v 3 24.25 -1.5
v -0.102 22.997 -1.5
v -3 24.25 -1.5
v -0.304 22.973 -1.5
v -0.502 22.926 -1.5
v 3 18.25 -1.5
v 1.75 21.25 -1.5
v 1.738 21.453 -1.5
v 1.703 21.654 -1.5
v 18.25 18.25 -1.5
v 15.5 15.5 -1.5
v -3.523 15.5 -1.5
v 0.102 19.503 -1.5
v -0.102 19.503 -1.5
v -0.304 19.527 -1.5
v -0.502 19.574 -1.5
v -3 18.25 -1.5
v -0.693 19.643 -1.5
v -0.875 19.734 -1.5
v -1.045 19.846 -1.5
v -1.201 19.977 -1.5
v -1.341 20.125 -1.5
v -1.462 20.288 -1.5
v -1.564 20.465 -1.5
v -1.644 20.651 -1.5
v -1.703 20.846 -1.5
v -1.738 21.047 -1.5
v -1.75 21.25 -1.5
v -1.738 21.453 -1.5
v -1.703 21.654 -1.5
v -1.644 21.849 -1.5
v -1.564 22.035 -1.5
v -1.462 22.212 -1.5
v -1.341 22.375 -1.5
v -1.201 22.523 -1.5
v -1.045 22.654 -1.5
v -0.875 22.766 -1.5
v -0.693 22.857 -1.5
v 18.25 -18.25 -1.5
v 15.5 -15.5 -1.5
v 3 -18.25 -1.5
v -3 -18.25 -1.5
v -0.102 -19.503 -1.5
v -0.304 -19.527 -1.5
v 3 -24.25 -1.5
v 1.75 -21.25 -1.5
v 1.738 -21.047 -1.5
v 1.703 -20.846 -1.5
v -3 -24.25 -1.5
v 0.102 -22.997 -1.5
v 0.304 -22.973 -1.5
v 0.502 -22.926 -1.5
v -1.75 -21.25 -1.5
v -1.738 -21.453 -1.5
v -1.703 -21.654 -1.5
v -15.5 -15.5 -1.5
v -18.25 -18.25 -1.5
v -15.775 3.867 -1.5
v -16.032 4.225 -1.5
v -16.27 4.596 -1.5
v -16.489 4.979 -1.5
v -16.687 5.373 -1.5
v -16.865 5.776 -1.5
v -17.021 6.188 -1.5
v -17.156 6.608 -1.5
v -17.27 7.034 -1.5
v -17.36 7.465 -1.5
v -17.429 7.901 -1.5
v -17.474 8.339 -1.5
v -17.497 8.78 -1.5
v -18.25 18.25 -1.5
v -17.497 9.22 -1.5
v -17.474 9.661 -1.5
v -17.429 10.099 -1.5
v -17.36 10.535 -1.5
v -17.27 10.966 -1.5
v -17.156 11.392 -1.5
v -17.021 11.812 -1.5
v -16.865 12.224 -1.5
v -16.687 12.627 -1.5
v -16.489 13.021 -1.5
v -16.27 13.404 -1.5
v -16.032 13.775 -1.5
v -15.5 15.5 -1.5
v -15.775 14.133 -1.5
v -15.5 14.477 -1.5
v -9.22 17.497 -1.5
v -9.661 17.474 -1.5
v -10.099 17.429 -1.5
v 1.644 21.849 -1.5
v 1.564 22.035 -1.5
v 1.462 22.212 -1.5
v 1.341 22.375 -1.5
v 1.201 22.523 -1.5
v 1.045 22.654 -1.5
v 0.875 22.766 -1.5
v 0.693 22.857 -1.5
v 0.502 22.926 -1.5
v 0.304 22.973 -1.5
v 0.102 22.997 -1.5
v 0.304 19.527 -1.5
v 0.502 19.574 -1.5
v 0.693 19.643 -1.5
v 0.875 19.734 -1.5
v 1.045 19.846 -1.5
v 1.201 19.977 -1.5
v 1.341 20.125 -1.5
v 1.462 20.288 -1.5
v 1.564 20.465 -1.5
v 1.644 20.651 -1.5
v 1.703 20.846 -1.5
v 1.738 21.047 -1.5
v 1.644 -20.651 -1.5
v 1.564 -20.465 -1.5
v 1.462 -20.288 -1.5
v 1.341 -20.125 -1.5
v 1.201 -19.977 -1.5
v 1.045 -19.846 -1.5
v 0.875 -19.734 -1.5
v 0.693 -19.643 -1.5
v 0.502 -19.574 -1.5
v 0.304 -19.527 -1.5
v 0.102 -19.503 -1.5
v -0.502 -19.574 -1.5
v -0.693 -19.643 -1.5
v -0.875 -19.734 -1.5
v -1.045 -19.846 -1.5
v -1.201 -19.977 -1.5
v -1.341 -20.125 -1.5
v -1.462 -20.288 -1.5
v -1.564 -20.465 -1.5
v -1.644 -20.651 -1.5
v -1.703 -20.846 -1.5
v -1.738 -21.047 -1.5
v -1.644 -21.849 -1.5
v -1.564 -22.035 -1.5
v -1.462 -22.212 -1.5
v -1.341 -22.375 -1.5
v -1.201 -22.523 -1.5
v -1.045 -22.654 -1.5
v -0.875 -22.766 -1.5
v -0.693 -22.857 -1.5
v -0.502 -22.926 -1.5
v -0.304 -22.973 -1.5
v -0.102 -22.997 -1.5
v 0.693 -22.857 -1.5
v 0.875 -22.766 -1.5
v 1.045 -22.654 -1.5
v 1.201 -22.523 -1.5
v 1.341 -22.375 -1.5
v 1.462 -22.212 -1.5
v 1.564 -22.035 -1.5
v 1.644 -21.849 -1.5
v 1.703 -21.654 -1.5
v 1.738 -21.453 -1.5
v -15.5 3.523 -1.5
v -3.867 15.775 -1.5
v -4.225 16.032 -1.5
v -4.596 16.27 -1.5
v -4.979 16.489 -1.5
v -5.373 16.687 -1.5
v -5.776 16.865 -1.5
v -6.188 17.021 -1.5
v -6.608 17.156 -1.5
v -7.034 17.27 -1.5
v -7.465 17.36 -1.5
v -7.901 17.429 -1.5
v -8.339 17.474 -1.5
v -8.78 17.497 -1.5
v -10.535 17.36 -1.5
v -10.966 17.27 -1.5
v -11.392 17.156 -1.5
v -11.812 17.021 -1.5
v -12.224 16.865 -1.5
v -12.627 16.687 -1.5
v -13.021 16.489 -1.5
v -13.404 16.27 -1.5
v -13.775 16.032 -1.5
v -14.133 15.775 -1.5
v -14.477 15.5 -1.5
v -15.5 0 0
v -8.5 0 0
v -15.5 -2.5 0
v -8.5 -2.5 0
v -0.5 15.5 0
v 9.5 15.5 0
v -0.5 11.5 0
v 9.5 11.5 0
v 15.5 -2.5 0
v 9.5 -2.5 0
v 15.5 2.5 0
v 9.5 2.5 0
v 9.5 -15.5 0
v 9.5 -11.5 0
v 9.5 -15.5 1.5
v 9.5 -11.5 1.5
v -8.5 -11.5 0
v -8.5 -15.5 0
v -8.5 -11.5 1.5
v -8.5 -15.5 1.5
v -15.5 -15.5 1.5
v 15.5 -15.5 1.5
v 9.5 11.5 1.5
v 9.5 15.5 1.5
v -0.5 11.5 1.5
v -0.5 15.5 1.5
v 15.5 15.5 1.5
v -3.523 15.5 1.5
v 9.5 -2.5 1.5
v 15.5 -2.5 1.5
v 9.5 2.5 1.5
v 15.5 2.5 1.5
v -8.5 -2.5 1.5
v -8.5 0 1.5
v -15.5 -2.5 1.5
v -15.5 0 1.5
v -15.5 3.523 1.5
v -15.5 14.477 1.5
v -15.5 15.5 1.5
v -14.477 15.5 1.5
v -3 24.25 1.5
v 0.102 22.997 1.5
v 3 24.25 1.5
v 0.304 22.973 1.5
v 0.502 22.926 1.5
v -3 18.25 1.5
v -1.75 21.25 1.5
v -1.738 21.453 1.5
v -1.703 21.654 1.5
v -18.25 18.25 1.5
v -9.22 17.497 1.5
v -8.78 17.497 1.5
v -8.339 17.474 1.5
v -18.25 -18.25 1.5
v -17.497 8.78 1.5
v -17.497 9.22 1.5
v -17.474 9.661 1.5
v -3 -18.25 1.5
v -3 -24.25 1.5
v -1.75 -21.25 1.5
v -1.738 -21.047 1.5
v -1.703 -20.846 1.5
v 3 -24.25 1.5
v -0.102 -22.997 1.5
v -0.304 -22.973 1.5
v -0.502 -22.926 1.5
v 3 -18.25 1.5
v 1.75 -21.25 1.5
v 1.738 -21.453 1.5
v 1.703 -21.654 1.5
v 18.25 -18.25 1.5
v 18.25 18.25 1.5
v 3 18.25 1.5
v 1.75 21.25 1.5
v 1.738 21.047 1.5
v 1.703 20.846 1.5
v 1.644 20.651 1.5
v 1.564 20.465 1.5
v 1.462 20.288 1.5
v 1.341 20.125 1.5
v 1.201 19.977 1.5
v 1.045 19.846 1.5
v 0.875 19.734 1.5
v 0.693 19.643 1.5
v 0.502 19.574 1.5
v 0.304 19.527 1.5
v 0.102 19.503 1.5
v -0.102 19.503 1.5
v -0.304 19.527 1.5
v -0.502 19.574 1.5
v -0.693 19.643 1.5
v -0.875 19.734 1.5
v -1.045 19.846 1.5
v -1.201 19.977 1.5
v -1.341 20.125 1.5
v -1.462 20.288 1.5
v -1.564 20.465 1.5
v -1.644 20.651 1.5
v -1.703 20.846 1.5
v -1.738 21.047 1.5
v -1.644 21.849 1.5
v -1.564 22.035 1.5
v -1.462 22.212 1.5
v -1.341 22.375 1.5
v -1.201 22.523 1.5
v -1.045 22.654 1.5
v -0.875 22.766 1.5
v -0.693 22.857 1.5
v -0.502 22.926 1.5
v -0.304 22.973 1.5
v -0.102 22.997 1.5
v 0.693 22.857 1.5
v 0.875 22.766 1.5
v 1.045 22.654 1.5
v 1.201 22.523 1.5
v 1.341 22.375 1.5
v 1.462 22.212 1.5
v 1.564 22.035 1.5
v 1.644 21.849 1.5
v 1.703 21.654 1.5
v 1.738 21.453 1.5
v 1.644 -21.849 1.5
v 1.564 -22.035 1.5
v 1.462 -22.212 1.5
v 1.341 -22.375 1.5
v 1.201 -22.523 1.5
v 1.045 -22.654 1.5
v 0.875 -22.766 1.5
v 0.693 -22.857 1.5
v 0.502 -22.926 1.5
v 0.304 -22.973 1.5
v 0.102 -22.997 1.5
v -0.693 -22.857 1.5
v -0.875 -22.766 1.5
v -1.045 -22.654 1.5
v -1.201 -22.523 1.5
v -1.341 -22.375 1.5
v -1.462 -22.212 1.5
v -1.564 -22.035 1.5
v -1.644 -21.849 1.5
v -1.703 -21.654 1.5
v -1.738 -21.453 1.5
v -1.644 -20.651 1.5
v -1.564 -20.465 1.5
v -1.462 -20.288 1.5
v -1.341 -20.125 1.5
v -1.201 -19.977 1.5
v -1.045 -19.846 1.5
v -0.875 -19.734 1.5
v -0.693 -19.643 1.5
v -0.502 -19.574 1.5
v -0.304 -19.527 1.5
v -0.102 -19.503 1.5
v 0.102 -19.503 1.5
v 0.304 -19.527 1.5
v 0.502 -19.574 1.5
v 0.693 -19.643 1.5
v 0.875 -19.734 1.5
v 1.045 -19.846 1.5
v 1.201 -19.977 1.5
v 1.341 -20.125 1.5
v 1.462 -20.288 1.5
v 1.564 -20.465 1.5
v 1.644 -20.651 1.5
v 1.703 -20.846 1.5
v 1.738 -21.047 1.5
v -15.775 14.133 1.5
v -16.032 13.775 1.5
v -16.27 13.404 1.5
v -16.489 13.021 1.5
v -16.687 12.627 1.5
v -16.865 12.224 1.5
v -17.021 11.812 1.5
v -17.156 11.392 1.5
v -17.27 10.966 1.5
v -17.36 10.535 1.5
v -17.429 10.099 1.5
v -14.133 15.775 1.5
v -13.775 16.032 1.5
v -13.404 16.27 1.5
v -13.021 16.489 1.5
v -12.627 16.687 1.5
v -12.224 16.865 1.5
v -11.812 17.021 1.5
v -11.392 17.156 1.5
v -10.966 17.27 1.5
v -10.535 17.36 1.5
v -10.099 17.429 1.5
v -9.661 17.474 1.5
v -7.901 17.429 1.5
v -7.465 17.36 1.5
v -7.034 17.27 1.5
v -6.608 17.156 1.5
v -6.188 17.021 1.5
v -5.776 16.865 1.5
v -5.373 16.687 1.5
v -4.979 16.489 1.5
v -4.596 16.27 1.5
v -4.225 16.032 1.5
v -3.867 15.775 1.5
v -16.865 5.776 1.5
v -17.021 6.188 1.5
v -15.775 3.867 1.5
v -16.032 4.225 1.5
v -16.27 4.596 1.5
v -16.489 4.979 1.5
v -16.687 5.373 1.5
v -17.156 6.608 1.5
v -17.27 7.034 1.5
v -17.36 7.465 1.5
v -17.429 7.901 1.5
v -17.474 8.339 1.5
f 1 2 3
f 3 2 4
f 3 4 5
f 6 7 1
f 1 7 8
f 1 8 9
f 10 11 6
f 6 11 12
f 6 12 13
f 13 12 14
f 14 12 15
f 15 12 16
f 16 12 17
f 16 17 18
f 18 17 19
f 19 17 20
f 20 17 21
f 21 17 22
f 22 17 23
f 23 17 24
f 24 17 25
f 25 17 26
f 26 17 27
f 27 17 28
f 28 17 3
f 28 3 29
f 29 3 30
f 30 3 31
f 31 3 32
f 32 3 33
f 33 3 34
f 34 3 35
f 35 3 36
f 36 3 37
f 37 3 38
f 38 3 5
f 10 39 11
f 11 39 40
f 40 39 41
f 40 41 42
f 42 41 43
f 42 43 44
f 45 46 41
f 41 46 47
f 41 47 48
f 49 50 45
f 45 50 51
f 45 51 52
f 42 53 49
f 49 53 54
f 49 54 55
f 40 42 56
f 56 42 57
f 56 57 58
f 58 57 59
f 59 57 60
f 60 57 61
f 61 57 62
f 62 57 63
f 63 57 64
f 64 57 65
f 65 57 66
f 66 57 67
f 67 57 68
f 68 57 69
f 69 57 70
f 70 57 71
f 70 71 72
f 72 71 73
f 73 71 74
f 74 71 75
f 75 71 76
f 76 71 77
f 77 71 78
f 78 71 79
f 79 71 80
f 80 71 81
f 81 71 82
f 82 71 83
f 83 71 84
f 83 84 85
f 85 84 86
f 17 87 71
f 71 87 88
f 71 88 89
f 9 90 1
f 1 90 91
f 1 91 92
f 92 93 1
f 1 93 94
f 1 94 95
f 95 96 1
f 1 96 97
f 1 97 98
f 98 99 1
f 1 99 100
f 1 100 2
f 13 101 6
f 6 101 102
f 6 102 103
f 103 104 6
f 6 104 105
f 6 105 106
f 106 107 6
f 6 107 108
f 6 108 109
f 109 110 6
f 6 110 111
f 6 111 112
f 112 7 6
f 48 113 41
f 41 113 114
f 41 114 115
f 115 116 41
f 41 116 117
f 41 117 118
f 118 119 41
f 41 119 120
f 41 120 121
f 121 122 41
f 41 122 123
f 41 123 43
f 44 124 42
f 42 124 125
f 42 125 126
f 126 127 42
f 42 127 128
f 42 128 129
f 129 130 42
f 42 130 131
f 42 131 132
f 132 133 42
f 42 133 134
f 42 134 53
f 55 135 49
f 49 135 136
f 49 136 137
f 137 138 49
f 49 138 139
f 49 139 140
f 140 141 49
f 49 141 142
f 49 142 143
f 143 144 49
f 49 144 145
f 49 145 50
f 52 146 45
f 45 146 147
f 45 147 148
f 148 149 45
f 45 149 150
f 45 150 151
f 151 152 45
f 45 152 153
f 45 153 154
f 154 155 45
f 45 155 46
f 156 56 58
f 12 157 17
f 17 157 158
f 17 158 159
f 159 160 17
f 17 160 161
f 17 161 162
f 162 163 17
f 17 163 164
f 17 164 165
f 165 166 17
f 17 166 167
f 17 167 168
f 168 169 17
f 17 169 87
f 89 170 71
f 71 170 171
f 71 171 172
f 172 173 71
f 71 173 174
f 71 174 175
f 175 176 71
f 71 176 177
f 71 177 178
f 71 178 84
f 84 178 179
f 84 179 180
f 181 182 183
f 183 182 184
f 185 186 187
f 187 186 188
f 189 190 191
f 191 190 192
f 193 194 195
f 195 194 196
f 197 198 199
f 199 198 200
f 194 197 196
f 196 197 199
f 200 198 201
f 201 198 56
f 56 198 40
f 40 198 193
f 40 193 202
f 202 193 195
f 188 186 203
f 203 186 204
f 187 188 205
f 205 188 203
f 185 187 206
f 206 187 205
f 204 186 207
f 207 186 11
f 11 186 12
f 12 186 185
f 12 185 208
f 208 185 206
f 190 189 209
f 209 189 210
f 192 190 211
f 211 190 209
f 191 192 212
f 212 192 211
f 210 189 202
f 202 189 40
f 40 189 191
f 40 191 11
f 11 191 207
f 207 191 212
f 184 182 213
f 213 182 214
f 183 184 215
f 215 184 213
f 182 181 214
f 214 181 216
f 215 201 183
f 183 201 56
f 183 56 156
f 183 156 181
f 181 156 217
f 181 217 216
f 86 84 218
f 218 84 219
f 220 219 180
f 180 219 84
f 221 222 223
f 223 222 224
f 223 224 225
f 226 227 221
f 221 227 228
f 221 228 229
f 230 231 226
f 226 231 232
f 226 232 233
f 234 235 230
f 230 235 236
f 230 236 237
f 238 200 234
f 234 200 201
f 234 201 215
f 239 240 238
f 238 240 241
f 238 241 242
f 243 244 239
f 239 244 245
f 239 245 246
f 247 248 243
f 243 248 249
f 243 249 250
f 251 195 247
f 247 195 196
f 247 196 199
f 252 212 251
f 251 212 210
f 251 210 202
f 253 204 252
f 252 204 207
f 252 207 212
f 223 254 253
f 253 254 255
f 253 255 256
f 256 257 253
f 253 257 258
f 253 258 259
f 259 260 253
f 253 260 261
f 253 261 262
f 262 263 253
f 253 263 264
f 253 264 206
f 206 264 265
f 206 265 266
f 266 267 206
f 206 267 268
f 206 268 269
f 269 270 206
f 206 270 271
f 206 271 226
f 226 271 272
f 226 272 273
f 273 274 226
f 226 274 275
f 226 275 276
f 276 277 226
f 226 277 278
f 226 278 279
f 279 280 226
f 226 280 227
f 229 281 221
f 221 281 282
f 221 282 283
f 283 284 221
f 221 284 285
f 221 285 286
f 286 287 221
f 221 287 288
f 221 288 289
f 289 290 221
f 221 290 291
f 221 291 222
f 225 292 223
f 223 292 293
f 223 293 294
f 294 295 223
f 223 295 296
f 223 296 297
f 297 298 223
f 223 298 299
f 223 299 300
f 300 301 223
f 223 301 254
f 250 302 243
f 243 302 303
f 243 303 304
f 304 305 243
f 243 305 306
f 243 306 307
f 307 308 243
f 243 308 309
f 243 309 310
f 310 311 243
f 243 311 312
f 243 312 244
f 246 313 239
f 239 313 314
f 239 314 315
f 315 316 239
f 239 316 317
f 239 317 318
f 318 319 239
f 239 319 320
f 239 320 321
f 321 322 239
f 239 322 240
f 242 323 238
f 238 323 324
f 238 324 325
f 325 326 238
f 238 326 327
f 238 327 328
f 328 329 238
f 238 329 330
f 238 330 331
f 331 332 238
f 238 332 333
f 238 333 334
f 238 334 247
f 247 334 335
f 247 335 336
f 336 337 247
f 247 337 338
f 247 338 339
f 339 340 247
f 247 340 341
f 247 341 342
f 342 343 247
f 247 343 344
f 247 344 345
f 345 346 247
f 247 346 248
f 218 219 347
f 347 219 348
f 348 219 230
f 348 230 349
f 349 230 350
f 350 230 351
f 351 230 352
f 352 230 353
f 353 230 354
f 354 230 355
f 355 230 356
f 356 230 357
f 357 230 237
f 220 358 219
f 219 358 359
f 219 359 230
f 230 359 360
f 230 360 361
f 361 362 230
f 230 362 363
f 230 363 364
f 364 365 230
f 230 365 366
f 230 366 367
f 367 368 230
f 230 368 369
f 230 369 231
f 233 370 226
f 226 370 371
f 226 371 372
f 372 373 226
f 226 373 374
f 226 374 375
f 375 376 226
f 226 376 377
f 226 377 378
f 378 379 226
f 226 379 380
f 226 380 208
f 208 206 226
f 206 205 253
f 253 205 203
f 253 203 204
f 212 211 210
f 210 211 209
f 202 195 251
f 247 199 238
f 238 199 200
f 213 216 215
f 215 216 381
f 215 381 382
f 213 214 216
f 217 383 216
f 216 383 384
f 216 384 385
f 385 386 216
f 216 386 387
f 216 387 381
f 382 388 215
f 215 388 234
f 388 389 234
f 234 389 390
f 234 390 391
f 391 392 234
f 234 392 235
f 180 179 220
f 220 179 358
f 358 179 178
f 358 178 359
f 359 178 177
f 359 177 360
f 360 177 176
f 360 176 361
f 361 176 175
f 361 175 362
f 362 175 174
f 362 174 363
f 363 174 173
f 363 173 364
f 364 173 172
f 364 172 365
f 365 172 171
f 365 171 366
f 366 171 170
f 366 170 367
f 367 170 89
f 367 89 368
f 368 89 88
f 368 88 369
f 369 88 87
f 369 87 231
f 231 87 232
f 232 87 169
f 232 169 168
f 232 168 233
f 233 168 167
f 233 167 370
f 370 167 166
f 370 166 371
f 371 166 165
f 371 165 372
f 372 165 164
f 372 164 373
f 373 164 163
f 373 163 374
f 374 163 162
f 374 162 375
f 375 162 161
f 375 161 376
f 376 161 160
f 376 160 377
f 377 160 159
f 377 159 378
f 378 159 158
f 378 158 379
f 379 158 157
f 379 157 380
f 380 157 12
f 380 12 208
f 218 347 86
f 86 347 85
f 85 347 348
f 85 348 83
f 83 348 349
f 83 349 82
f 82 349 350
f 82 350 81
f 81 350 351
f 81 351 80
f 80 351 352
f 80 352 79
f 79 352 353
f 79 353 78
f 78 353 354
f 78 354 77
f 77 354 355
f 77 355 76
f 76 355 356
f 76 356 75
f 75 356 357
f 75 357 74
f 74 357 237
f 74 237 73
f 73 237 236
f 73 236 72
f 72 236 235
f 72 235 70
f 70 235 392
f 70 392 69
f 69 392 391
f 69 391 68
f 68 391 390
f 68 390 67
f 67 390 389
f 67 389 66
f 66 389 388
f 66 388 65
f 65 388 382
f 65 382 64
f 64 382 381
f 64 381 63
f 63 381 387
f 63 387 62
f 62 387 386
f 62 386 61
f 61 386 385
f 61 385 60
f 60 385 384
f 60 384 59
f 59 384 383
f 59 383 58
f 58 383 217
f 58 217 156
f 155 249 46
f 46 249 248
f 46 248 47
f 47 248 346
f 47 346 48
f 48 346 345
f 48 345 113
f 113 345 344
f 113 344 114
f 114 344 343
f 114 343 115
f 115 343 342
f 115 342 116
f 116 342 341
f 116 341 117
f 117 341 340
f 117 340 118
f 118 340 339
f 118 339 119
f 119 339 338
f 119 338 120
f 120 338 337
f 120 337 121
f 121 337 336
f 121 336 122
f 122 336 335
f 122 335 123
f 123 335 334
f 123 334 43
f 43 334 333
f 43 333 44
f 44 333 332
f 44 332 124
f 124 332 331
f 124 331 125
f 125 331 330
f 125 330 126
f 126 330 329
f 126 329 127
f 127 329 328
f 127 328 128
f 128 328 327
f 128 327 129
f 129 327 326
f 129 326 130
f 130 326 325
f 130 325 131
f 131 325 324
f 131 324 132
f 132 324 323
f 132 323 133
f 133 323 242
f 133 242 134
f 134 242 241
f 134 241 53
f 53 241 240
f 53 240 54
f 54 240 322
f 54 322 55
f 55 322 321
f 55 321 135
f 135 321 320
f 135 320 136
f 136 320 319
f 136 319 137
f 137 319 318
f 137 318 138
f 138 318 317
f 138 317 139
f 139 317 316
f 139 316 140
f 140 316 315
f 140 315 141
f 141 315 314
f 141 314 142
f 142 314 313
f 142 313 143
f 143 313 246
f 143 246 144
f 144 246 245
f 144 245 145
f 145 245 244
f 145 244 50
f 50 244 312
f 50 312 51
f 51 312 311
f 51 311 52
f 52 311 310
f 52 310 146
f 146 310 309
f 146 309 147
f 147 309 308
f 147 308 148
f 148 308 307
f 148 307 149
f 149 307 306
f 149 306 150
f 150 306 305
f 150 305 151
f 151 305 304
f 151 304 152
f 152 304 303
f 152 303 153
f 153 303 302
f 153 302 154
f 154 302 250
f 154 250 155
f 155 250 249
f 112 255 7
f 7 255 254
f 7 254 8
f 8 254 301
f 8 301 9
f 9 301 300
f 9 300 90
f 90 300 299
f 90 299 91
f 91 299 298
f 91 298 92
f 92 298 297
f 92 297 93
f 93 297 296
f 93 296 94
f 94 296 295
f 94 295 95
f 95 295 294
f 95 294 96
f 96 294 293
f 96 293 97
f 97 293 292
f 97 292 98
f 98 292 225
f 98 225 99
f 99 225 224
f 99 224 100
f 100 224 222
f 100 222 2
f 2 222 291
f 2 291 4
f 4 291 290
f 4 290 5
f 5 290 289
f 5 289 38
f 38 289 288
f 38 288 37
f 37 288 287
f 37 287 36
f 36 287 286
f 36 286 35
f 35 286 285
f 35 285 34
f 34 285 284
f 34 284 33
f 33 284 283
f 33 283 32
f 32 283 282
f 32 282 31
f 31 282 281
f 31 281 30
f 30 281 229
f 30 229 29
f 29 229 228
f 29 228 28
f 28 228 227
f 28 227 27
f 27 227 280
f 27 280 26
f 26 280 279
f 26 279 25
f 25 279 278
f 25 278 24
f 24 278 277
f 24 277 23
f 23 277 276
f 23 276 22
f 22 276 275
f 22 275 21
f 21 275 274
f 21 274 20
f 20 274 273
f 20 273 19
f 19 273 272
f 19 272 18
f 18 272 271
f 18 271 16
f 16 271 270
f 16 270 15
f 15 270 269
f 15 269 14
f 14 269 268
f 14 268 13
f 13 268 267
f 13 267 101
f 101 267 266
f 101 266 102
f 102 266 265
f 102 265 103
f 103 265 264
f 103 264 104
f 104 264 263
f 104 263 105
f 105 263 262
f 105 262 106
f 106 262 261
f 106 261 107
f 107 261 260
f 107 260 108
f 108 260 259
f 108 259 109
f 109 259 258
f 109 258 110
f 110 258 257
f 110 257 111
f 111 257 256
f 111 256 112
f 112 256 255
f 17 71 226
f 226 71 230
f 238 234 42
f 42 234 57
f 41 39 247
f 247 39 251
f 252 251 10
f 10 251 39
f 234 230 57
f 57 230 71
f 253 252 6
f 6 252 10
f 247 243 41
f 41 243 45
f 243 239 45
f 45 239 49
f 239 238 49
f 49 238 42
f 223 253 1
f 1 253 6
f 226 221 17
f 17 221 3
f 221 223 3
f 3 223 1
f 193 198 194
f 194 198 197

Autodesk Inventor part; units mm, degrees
ref_plane "YZ Plane" through (0, 0, 0) normal (1, 0, 0) x (0, 1, 0)
ref_plane "XZ Plane" through (0, 0, 0) normal (0, 1, 0) x (-1, 0, 0)
ref_plane "XY Plane" through (0, 0, 0) normal (0, 0, 1) x (1, 0, 0)
sketch "shape" plane through (0, 0, 0) normal (0, 0, 1) x (1, 0, 0)
  line L0 (-18.25, 18.25) -> (18.25, 18.25)
  line L1 (18.25, 18.25) -> (18.25, -18.25)
  line L2 (18.25, -18.25) -> (-18.25, -18.25)
  line L3 (-18.25, -18.25) -> (-18.25, 18.25)
  line L4 (-15.5, 15.5) -> (15.5, 15.5)
  line L5 (15.5, 15.5) -> (15.5, -15.5)
  line L6 (15.5, -15.5) -> (-15.5, -15.5)
  line L7 (-15.5, -15.5) -> (-15.5, 15.5)
  line L8 (9.5, 2.5) -> (15.5, 2.5)
  line L9 (15.5, 2.5) -> (15.5, -2.5)
  line L10 (15.5, -2.5) -> (9.5, -2.5)
  line L11 (9.5, -2.5) -> (9.5, 2.5)
  line L12 (-0.5, 15.5) -> (9.5, 15.5)
  line L13 (9.5, 15.5) -> (9.5, 11.5)
  line L14 (9.5, 11.5) -> (-0.5, 11.5)
  line L15 (-0.5, 11.5) -> (-0.5, 15.5)
  line L16 (-8.5, -11.5) -> (9.5, -11.5)
  line L17 (9.5, -11.5) -> (9.5, -15.5)
  line L18 (9.5, -15.5) -> (-8.5, -15.5)
  line L19 (-8.5, -15.5) -> (-8.5, -11.5)
  line L20 (-15.5, 0) -> (-8.5, 0)
  line L21 (-8.5, 0) -> (-8.5, -2.5)
  line L22 (-8.5, -2.5) -> (-15.5, -2.5)
  line L23 (-15.5, -2.5) -> (-15.5, 0)
  circle A0 centre (-9, 9) radius 8.5
  line L24 (-3, 24.25) -> (3, 24.25)
  line L25 (3, 24.25) -> (3, 18.25)
  line L26 (3, 18.25) -> (-3, 18.25)
  line L27 (-3, 18.25) -> (-3, 24.25)
  line L28 (-3, -18.25) -> (3, -18.25)
  line L29 (3, -18.25) -> (3, -24.25)
  line L30 (3, -24.25) -> (-3, -24.25)
  line L31 (-3, -24.25) -> (-3, -18.25)
  circle A1 centre (0, -21.25) radius 1.75
  circle A2 centre (0, 21.25) radius 1.75
  point P0 (0, 0)
  point P1 (-18.25, 0)
  point P2 (0, 18.25)
  point P3 (-15.5, 0)
  point P4 (0, 15.5)
  point P5 (0, 24.25)
  point P6 (3, 21.25)
  point P7 (0, -24.25)
  point P8 (3, -21.25)
  dimension "d1" = 36.5
  dimension "d2" = 31
  dimension "d3" = 31
  dimension "d4" = 5
  dimension "d5" = 6
  dimension "d6" = 13
  dimension "d7" = 10
  dimension "d8" = 4
  dimension "d9" = 6
  dimension "d10" = 18
  dimension "d11" = 4
  dimension "d12" = 6
  dimension "d13" = 7
  dimension "d14" = 2.5
  dimension "d15" = 13
  dimension "d16" = 17
  dimension "d17" = 6.5
  dimension "d18" = 6.5
  dimension "d21" = 6
  dimension "d23" = 3.5
extrude "over pcb" add sketch "shape" along normal blind 1.5 contours L0 L1 L2 L3 | L27 L24 L25 L0 | L2 L29 L30 L31 | L4 L13 L14 L15 | L5 L10 L11 L8 | L20 L21 L22 L7 | L6 L19 L16 L17
extrude "around pcb" add sketch "shape" against normal blind 1.5
equation "\"d18\" = d17"
properties part number "MCP73871_holder"
